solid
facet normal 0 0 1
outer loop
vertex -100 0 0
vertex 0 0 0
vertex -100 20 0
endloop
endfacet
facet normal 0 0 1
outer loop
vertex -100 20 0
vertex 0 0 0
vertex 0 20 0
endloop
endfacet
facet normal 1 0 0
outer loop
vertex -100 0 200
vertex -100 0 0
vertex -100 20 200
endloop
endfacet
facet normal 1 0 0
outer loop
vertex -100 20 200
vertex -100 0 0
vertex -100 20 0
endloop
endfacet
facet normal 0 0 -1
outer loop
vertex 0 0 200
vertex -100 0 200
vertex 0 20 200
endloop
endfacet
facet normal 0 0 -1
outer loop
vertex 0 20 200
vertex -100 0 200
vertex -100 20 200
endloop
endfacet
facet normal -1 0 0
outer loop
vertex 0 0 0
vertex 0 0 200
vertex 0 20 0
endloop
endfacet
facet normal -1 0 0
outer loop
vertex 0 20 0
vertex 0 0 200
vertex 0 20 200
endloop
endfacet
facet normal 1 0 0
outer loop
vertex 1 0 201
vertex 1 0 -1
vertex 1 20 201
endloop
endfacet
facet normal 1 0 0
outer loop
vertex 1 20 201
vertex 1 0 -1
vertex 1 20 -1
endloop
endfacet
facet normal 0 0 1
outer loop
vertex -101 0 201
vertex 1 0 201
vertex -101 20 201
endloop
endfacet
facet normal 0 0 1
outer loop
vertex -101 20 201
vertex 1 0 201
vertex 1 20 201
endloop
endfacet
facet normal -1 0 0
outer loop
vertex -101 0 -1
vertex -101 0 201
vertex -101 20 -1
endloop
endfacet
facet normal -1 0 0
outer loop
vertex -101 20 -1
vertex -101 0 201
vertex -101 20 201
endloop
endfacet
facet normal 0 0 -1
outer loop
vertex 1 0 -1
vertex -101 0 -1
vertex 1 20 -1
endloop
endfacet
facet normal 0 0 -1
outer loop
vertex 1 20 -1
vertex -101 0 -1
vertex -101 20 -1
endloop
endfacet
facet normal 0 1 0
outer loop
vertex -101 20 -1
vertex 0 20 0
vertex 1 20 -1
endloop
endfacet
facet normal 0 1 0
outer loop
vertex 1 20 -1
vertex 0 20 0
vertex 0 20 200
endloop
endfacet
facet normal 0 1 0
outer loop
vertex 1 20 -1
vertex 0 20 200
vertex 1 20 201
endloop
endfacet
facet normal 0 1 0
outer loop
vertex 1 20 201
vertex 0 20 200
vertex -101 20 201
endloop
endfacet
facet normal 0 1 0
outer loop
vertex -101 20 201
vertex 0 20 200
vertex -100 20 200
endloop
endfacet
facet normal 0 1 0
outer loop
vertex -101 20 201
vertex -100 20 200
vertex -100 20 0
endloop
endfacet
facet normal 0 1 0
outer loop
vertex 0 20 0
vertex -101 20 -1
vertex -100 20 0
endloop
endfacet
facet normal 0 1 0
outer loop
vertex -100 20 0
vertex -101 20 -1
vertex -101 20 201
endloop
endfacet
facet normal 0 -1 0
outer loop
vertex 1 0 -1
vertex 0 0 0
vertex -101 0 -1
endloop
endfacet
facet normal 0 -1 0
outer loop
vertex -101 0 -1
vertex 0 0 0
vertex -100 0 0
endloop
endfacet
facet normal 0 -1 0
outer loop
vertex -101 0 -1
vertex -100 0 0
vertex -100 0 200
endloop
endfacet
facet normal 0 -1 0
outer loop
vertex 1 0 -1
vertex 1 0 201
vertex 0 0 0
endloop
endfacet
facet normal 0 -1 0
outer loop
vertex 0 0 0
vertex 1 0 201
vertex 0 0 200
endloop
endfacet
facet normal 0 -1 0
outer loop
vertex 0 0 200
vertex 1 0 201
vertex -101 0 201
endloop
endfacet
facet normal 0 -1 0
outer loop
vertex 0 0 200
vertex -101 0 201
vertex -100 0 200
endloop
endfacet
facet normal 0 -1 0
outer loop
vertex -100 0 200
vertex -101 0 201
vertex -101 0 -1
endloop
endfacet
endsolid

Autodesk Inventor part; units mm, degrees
ref_plane "YZ Plane" through (0, 0, 0) normal (1, 0, 0) x (0, 1, 0)
ref_plane "XZ Plane" through (0, 0, 0) normal (0, 1, 0) x (-1, 0, 0)
ref_plane "XY Plane" through (0, 0, 0) normal (0, 0, 1) x (1, 0, 0)
sketch "Sketch2" plane through (0, 0, 0) normal (0, 1, 0) x (-1, 0, 0)
  line L0 (0, 0) -> (-20, 0) projected
  line L1 (0, 0) -> (100, 0)
  line L2 (100, 0) -> (100, 200)
  line L3 (100, 200) -> (0, 200)
  line L4 (0, 200) -> (0, 0)
  line L5 (101, 201) -> (-1, 201)
  line L6 (-1, 201) -> (-1, -1)
  line L7 (-1, -1) -> (101, -1)
  line L8 (101, -1) -> (101, 201)
  dimension "d8" = 100
  dimension "d9" = 200
  dimension "d10" = 1
  dimension "d11" = 1
  dimension "d12" = 1
  dimension "d13" = 1
extrude "Extrusion2" add sketch "Sketch2" along normal blind 20
equation "\"d8\" = inner_width"
equation "\"d9\" = height"
equation "\"d10\" = wall_thicknes"
equation "\"d11\" = wall_thicknes"
equation "\"d12\" = wall_thicknes"
equation "\"d13\" = wall_thicknes"
equation "\"inner_width\" = 100"
equation "\"height\" = 200"
equation "\"wall_thicknes\" = 1"
properties part number "vib_bed_full_xz"
